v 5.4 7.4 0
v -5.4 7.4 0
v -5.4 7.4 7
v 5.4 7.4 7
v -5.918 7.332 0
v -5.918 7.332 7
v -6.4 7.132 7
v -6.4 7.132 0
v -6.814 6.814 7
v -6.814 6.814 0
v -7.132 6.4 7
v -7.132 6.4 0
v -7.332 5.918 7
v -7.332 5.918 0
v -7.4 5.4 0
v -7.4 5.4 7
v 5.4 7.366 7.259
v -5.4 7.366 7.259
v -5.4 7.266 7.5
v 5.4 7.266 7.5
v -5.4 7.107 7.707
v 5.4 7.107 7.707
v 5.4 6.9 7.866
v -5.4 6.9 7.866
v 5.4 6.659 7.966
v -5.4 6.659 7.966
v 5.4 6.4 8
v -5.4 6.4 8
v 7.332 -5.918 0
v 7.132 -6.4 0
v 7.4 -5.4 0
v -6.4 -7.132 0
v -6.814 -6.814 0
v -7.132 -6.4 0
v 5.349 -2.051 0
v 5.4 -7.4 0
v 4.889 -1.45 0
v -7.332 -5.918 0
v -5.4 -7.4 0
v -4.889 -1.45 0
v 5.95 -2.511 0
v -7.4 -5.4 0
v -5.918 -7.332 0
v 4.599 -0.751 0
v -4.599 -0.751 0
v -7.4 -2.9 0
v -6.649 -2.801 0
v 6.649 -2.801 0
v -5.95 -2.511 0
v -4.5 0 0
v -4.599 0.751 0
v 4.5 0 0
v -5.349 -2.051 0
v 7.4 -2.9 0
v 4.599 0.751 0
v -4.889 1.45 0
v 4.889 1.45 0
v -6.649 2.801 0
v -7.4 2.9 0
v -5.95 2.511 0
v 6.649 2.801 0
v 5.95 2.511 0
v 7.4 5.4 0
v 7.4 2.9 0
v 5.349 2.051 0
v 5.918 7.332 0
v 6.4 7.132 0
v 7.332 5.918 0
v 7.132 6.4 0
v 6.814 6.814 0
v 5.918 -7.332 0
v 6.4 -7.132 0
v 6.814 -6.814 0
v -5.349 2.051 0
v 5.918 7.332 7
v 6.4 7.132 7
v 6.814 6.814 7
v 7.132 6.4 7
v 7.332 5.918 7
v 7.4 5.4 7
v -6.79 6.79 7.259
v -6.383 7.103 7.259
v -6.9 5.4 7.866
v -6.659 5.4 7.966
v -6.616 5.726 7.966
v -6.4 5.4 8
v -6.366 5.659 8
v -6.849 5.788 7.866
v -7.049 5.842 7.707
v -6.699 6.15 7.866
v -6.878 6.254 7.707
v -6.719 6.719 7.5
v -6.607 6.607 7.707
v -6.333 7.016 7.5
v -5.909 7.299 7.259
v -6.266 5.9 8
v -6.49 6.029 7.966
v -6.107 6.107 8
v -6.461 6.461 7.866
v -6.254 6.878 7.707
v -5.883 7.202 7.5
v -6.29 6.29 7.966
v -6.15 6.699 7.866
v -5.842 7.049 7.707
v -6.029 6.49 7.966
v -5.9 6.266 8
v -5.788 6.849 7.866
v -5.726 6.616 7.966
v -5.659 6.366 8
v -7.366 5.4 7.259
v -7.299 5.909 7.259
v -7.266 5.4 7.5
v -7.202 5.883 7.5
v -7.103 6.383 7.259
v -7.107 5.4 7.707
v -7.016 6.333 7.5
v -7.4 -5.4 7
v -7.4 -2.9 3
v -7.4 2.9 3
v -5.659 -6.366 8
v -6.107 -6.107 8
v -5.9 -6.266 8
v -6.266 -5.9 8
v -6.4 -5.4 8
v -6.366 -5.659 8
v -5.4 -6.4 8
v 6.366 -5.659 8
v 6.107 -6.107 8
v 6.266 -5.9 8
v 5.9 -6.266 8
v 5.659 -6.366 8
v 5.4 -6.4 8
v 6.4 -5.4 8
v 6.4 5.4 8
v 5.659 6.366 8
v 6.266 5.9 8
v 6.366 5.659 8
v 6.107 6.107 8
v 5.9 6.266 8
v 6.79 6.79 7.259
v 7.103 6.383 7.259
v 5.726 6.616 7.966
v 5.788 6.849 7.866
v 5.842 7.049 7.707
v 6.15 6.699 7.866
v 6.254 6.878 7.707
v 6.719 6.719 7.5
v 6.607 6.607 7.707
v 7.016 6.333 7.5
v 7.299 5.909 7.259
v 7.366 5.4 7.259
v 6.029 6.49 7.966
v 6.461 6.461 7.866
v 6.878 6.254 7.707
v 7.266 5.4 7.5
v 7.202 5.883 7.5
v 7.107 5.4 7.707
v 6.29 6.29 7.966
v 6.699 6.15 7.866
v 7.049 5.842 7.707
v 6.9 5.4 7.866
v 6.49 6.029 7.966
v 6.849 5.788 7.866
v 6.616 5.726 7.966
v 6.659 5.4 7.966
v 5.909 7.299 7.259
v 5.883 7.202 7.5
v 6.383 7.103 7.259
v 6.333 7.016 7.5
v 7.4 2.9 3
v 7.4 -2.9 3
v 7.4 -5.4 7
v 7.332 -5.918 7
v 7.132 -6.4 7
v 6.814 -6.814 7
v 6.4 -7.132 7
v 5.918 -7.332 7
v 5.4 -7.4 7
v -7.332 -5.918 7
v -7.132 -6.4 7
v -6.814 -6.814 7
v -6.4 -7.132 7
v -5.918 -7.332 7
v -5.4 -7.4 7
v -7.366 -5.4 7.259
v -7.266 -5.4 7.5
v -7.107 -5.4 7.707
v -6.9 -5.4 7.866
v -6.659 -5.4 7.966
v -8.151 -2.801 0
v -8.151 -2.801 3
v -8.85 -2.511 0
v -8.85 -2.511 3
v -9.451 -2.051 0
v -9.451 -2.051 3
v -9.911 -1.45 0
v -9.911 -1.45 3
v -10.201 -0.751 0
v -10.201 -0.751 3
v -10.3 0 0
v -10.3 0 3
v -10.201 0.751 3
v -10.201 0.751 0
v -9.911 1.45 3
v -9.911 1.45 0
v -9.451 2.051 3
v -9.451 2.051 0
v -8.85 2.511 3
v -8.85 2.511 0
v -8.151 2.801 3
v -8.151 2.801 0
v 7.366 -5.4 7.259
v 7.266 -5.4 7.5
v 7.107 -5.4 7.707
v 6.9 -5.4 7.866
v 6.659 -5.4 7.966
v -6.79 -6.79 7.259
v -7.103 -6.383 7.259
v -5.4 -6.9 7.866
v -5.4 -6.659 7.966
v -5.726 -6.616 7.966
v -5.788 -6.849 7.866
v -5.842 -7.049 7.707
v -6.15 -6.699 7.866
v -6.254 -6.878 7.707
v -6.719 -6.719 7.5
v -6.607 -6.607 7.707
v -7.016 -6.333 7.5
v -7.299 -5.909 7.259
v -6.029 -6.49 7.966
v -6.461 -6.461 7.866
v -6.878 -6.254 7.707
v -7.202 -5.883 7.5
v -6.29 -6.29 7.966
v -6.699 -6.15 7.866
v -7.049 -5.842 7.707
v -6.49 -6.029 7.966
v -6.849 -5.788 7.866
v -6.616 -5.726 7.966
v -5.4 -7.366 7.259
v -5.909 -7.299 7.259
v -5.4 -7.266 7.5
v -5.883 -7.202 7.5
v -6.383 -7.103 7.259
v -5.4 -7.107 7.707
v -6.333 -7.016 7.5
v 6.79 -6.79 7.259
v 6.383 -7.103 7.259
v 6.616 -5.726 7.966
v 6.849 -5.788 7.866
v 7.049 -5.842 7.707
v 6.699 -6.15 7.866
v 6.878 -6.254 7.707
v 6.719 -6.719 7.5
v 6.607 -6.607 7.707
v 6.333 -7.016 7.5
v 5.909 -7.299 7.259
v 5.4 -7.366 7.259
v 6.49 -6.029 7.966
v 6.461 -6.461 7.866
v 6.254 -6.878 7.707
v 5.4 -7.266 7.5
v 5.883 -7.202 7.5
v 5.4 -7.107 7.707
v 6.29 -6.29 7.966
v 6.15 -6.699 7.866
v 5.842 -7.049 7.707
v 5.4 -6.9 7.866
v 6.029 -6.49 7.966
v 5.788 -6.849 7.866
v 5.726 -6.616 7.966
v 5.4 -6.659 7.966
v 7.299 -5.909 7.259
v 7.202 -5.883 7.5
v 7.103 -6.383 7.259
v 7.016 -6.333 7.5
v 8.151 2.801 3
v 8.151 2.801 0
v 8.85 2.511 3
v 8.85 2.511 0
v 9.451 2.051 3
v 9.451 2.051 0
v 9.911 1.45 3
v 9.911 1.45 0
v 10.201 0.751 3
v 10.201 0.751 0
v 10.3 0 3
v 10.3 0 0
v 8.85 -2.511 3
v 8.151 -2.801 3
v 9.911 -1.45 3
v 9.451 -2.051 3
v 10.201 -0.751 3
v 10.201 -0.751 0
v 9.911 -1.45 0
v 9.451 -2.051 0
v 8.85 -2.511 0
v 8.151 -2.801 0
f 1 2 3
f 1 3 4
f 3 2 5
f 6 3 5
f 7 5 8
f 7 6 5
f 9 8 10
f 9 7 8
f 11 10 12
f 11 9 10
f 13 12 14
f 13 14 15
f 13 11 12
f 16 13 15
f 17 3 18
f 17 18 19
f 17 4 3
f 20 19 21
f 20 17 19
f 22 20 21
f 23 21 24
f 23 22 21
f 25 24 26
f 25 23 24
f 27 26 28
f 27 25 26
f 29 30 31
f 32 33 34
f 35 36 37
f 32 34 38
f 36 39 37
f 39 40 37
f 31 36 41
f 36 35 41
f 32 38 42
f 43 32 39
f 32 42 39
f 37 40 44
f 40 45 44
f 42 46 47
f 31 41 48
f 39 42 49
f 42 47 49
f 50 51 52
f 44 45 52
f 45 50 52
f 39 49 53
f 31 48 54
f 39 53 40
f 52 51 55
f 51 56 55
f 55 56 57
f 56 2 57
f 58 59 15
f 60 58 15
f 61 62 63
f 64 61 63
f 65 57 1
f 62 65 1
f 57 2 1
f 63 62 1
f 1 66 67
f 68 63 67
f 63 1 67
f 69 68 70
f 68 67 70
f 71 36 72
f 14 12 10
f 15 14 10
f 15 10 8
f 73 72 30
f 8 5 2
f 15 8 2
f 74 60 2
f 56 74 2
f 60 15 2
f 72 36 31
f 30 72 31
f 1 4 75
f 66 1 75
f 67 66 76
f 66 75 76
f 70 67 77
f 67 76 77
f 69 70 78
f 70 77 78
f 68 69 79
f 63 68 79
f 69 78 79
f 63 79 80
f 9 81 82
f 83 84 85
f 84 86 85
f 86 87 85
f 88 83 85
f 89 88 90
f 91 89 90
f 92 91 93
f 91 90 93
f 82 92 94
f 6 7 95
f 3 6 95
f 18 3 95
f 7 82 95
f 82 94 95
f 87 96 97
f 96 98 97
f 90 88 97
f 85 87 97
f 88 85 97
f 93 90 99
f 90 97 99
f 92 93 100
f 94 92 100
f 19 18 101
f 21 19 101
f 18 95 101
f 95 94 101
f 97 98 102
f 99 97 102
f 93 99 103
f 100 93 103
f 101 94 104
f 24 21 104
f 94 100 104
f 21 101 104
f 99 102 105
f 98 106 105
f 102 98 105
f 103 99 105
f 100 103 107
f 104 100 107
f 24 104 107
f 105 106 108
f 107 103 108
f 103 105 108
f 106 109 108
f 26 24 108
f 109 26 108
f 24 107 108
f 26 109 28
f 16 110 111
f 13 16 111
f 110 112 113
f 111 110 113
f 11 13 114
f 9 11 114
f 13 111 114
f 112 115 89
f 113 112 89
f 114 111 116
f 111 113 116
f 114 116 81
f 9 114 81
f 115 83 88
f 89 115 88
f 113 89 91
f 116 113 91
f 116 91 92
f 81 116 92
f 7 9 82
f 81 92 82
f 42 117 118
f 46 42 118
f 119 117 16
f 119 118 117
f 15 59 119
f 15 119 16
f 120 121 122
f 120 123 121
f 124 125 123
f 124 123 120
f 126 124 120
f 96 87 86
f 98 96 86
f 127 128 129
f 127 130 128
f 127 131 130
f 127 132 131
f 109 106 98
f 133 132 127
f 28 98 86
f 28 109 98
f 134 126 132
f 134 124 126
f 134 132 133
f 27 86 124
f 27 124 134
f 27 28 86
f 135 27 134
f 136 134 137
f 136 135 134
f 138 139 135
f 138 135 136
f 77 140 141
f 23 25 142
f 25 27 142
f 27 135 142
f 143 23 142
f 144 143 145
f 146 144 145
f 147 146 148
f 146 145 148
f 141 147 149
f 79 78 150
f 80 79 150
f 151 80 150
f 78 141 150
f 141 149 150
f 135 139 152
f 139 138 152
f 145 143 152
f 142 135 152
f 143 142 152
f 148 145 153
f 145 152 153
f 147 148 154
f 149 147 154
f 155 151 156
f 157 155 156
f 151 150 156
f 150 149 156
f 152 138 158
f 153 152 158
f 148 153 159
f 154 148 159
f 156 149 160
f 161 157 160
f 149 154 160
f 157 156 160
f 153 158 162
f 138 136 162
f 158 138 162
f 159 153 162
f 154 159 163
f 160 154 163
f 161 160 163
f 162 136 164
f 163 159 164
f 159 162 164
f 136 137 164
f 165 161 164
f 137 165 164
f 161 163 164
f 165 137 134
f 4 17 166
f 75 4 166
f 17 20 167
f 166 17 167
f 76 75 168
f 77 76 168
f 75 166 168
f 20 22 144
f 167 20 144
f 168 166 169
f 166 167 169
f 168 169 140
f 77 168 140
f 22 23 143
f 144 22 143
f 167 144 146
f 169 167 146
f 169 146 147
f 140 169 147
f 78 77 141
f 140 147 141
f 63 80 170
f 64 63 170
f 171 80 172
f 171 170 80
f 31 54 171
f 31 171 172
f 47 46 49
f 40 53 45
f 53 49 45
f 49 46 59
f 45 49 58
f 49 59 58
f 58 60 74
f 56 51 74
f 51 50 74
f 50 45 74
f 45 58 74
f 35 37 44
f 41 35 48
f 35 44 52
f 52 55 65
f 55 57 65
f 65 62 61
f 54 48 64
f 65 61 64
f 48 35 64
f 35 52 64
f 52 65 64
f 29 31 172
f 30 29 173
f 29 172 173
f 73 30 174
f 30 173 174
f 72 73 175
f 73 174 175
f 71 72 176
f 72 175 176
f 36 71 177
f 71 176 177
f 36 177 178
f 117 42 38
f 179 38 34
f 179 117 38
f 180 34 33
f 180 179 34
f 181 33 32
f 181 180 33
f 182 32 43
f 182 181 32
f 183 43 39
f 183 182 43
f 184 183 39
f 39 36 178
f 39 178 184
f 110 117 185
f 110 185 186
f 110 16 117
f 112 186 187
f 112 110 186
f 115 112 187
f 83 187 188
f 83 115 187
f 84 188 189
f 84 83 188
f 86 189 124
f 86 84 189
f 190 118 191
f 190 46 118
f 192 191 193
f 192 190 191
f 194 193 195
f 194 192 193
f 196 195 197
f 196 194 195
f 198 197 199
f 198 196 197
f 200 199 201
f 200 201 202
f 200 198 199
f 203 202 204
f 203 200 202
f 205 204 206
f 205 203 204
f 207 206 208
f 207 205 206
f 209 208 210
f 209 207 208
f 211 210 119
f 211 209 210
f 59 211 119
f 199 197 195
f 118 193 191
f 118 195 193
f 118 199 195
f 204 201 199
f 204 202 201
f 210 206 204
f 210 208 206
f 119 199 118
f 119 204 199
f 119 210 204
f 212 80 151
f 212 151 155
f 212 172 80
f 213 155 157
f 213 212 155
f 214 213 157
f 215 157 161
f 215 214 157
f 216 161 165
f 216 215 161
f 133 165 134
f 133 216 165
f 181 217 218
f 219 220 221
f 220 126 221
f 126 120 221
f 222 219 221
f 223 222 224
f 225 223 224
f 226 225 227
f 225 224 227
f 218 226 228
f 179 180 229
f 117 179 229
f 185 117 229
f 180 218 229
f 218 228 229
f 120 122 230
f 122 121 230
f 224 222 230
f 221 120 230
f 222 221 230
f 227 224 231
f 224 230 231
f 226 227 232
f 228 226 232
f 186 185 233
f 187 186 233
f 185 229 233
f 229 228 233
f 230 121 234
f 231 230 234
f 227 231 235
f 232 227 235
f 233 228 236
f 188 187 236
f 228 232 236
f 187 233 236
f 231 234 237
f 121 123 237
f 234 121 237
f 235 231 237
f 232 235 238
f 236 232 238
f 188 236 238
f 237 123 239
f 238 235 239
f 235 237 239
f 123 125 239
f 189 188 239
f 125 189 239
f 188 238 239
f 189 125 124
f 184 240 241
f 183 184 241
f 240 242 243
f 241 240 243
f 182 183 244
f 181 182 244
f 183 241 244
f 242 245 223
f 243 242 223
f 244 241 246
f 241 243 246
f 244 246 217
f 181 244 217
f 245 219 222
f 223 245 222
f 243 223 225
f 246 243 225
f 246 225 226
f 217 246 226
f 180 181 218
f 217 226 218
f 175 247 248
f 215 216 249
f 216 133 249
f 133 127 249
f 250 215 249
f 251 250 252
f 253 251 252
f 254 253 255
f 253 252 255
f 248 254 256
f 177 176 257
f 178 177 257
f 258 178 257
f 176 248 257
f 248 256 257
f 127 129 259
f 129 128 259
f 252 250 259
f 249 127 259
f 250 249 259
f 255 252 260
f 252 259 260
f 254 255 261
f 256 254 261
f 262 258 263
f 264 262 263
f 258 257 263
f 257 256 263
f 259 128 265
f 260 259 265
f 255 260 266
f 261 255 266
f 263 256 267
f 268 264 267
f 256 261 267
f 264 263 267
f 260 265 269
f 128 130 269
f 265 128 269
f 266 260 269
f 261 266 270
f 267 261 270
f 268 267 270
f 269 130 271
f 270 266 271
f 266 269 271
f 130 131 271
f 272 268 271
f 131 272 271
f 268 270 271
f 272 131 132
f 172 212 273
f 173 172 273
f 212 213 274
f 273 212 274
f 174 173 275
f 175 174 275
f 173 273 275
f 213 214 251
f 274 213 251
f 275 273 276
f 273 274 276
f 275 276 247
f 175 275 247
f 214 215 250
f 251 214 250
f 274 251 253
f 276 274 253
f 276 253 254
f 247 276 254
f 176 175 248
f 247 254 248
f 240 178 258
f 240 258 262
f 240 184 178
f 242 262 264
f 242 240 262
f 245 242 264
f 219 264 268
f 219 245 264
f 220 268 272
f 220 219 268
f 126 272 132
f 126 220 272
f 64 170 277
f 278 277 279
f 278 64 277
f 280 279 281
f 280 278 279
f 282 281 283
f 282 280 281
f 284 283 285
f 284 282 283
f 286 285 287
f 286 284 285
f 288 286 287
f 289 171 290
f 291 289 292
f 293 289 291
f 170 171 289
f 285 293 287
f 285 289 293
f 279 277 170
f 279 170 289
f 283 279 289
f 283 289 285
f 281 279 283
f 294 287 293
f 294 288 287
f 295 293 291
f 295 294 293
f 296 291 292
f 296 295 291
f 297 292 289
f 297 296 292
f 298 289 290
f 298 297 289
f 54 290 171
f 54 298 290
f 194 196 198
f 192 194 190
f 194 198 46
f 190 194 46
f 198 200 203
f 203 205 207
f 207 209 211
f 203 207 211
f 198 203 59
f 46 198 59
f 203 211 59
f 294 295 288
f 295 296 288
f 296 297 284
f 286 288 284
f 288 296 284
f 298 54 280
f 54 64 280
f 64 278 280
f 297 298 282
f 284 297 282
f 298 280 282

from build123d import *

# Parameters (mm, degrees)
SKETCH_W     = 14.8
SKETCH_H     = 14.8
PAD_DEPTH    = 8
SKETCH001_R  = 2.9
PAD001_DEPTH = 3
FILLET_R     = 2
FILLET001_R  = 1


with BuildPart() as part:
    # Sketch → Pad (new body)
    with BuildSketch(Plane.XY):
        Rectangle(SKETCH_W, SKETCH_H)
    extrude(amount=PAD_DEPTH)

    # Sketch001 → Pad001 (new body)
    with BuildSketch(Plane(origin=(0, 0, 0), x_dir=(1, 0, 0), z_dir=(0, 0, -1))):
        with Locations((-7.4, 0)):
            Circle(SKETCH001_R)
        with Locations((7.4, 0)):
            Circle(SKETCH001_R)
    extrude(amount=-PAD001_DEPTH)

    # Fillet
    fillet_edges = [part.edges().sort_by_distance(p)[0] for p in [
        (7.4, 7.4, 4),
        (7.4, -7.4, 4),
        (-7.4, 7.4, 4),
        (-7.4, -7.4, 4),
    ]]
    fillet(fillet_edges, radius=FILLET_R)

    # Fillet001
    fillet001_edges = [part.edges().sort_by_distance(p)[0] for p in [
        (0, 7.4, 8),
        (6.814214, 6.814214, 8),
        (7.4, 0, 8),
        (6.814214, -6.814214, 8),
        (0, -7.4, 8),
        (-6.814214, -6.814214, 8),
        (-7.4, 0, 8),
        (-6.814214, 6.814214, 8),
    ]]
    fillet(fillet001_edges, radius=FILLET001_R)


solid = part.part
